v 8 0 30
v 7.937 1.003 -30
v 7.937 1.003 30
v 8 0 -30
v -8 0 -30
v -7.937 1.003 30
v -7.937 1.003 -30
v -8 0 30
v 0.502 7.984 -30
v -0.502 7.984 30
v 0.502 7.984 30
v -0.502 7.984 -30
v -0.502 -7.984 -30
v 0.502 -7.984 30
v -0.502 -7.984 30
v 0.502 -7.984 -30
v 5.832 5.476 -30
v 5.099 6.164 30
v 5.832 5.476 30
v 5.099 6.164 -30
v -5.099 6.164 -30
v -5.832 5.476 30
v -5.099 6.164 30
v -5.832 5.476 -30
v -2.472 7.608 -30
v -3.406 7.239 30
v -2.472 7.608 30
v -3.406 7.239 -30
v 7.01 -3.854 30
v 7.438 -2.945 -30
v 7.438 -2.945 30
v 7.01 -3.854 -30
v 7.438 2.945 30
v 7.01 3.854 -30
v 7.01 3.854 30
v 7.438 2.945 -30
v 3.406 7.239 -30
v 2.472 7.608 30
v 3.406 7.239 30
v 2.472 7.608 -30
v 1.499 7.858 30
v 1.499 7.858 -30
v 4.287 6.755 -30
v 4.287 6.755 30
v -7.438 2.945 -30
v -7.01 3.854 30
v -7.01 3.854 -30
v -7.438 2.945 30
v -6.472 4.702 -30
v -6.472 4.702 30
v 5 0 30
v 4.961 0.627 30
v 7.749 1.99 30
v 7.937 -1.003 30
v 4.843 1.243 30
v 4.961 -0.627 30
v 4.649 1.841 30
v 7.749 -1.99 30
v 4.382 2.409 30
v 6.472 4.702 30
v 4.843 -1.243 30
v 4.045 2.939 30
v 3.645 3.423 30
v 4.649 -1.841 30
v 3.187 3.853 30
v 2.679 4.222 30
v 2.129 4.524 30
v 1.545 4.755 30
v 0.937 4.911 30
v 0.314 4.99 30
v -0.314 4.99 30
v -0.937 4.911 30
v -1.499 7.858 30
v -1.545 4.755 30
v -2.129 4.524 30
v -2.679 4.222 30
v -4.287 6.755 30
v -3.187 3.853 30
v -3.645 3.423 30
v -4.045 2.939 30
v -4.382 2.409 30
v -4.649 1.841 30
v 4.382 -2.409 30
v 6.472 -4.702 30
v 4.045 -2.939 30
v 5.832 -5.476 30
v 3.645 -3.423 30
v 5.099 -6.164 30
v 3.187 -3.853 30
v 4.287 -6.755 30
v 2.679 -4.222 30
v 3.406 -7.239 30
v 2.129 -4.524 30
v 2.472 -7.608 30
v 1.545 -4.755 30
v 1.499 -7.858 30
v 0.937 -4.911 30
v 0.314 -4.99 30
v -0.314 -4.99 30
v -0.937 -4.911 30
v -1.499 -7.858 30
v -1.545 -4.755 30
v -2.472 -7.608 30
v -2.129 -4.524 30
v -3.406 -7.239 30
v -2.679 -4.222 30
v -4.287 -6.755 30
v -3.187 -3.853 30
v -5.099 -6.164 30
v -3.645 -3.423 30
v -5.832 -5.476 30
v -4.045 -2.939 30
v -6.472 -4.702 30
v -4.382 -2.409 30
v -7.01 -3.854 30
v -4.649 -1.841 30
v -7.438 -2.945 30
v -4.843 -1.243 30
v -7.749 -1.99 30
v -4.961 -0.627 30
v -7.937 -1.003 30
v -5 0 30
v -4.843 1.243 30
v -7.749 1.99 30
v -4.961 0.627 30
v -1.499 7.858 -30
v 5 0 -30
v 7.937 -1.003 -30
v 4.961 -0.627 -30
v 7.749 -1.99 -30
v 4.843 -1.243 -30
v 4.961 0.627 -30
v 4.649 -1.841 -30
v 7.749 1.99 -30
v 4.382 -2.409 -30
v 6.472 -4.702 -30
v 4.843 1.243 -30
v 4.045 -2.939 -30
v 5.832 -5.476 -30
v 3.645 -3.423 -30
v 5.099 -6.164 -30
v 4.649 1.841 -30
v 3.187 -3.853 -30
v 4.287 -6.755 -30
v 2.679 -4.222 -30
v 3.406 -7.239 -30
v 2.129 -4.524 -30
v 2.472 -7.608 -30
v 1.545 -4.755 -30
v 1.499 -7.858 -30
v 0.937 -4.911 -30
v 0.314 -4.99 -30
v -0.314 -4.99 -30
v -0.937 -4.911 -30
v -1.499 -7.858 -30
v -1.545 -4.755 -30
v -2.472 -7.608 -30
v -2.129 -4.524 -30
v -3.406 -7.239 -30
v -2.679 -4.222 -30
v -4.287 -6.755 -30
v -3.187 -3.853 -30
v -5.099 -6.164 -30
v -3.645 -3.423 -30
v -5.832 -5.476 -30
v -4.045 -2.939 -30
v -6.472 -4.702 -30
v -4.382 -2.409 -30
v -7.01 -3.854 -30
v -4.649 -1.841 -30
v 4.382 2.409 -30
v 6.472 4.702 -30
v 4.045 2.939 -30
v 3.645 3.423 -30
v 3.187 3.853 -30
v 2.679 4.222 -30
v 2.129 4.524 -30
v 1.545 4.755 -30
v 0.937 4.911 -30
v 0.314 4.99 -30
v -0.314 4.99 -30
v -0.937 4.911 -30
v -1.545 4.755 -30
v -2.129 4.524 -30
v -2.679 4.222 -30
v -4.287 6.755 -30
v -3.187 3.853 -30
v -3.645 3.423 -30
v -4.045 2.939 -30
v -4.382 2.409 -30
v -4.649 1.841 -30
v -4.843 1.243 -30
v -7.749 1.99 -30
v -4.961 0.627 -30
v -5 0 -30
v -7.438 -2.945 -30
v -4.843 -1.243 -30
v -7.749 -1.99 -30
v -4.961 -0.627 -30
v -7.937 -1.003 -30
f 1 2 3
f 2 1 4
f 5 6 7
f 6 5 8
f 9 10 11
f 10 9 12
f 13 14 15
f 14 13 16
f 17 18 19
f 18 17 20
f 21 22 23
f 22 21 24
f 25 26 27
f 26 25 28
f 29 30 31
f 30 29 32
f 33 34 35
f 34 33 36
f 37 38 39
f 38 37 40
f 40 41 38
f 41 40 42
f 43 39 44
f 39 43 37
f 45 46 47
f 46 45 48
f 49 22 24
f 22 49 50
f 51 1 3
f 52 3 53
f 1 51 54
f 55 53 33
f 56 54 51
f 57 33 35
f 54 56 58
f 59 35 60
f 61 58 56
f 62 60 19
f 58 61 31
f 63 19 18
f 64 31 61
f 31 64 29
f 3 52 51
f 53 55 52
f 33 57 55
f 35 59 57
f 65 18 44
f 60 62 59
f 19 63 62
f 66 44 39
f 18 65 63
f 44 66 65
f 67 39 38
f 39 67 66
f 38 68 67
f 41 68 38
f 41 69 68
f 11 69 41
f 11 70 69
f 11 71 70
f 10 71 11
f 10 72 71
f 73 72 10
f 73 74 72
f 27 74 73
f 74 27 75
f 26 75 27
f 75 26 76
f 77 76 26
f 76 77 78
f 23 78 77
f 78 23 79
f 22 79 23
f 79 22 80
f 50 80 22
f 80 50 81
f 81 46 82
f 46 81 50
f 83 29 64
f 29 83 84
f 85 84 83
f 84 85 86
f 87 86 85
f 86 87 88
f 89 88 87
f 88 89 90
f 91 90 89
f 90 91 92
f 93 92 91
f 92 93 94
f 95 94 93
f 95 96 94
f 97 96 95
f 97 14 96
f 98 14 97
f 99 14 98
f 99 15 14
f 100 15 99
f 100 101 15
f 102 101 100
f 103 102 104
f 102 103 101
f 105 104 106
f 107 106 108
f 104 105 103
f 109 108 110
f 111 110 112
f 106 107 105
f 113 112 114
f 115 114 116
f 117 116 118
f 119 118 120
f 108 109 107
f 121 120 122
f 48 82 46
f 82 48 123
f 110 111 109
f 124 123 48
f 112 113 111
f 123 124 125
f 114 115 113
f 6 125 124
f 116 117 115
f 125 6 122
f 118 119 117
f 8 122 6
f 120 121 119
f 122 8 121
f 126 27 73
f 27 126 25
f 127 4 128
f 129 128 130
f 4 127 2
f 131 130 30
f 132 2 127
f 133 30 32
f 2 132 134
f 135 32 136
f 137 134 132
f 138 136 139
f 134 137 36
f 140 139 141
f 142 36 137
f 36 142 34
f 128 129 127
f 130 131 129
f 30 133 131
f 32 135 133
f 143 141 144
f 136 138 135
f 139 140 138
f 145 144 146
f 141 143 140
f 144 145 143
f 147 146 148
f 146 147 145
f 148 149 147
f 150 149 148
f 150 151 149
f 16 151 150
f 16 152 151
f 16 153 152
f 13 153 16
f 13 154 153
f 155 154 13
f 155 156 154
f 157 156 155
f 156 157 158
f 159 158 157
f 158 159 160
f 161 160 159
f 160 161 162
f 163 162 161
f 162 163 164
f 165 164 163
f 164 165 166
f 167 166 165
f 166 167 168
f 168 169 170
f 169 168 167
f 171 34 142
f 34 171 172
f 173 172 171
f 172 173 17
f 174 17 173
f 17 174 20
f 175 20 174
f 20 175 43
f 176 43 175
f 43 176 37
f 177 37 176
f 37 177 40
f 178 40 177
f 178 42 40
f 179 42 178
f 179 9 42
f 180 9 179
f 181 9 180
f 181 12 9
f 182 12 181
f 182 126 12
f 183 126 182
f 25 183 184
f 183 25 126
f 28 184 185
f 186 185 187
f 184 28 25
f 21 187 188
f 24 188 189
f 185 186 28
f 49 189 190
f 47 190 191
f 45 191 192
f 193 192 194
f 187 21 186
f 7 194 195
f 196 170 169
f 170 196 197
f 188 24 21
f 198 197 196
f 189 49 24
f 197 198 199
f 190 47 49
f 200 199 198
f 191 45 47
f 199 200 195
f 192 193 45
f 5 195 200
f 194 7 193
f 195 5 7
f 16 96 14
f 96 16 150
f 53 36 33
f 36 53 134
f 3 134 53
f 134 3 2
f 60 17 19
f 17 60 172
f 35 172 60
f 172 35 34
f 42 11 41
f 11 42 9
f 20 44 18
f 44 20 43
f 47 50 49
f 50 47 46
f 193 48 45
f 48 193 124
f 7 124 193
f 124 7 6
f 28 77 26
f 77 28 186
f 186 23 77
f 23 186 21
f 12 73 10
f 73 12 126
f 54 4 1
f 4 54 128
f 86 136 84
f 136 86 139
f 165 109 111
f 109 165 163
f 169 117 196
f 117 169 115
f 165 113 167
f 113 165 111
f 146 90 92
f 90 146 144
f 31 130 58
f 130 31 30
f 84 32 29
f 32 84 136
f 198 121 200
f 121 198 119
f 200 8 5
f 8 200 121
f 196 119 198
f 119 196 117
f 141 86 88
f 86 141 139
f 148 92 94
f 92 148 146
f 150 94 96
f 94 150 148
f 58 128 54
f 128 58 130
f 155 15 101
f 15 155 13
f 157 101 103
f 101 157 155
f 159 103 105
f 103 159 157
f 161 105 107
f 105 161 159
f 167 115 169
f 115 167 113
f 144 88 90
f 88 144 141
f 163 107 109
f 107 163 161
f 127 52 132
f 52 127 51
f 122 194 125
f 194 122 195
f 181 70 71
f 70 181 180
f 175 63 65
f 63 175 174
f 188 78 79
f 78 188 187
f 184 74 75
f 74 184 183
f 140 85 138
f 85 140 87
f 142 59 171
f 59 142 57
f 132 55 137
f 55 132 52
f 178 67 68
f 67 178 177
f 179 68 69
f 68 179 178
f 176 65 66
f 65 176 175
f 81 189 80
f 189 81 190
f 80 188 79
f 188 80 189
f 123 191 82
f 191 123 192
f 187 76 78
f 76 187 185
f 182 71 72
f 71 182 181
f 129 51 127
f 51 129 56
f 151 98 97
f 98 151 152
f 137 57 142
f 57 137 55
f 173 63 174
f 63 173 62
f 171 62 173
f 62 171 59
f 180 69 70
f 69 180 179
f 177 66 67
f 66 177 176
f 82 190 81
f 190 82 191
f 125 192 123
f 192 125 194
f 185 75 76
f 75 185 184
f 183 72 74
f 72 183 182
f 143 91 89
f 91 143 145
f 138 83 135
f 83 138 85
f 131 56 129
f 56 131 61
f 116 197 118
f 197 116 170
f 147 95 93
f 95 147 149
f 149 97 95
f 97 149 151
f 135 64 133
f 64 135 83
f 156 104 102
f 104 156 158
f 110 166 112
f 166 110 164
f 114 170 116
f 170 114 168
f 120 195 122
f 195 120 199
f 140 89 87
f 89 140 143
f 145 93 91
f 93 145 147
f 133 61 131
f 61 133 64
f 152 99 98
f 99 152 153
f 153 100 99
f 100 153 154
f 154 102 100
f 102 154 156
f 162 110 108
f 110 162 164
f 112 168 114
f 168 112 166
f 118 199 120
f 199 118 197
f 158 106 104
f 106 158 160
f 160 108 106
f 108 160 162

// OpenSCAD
$fn = 50;


difference() {
	union() {
		translate(v = [0, 0, -30.0000000000]) {
			cylinder(h = 60, r = 8.0000000000);
		}
	}
	union() {
		translate(v = [0, 0, -100.0000000000]) {
			cylinder(h = 200, r = 5.0000000000);
		}
	}
}
